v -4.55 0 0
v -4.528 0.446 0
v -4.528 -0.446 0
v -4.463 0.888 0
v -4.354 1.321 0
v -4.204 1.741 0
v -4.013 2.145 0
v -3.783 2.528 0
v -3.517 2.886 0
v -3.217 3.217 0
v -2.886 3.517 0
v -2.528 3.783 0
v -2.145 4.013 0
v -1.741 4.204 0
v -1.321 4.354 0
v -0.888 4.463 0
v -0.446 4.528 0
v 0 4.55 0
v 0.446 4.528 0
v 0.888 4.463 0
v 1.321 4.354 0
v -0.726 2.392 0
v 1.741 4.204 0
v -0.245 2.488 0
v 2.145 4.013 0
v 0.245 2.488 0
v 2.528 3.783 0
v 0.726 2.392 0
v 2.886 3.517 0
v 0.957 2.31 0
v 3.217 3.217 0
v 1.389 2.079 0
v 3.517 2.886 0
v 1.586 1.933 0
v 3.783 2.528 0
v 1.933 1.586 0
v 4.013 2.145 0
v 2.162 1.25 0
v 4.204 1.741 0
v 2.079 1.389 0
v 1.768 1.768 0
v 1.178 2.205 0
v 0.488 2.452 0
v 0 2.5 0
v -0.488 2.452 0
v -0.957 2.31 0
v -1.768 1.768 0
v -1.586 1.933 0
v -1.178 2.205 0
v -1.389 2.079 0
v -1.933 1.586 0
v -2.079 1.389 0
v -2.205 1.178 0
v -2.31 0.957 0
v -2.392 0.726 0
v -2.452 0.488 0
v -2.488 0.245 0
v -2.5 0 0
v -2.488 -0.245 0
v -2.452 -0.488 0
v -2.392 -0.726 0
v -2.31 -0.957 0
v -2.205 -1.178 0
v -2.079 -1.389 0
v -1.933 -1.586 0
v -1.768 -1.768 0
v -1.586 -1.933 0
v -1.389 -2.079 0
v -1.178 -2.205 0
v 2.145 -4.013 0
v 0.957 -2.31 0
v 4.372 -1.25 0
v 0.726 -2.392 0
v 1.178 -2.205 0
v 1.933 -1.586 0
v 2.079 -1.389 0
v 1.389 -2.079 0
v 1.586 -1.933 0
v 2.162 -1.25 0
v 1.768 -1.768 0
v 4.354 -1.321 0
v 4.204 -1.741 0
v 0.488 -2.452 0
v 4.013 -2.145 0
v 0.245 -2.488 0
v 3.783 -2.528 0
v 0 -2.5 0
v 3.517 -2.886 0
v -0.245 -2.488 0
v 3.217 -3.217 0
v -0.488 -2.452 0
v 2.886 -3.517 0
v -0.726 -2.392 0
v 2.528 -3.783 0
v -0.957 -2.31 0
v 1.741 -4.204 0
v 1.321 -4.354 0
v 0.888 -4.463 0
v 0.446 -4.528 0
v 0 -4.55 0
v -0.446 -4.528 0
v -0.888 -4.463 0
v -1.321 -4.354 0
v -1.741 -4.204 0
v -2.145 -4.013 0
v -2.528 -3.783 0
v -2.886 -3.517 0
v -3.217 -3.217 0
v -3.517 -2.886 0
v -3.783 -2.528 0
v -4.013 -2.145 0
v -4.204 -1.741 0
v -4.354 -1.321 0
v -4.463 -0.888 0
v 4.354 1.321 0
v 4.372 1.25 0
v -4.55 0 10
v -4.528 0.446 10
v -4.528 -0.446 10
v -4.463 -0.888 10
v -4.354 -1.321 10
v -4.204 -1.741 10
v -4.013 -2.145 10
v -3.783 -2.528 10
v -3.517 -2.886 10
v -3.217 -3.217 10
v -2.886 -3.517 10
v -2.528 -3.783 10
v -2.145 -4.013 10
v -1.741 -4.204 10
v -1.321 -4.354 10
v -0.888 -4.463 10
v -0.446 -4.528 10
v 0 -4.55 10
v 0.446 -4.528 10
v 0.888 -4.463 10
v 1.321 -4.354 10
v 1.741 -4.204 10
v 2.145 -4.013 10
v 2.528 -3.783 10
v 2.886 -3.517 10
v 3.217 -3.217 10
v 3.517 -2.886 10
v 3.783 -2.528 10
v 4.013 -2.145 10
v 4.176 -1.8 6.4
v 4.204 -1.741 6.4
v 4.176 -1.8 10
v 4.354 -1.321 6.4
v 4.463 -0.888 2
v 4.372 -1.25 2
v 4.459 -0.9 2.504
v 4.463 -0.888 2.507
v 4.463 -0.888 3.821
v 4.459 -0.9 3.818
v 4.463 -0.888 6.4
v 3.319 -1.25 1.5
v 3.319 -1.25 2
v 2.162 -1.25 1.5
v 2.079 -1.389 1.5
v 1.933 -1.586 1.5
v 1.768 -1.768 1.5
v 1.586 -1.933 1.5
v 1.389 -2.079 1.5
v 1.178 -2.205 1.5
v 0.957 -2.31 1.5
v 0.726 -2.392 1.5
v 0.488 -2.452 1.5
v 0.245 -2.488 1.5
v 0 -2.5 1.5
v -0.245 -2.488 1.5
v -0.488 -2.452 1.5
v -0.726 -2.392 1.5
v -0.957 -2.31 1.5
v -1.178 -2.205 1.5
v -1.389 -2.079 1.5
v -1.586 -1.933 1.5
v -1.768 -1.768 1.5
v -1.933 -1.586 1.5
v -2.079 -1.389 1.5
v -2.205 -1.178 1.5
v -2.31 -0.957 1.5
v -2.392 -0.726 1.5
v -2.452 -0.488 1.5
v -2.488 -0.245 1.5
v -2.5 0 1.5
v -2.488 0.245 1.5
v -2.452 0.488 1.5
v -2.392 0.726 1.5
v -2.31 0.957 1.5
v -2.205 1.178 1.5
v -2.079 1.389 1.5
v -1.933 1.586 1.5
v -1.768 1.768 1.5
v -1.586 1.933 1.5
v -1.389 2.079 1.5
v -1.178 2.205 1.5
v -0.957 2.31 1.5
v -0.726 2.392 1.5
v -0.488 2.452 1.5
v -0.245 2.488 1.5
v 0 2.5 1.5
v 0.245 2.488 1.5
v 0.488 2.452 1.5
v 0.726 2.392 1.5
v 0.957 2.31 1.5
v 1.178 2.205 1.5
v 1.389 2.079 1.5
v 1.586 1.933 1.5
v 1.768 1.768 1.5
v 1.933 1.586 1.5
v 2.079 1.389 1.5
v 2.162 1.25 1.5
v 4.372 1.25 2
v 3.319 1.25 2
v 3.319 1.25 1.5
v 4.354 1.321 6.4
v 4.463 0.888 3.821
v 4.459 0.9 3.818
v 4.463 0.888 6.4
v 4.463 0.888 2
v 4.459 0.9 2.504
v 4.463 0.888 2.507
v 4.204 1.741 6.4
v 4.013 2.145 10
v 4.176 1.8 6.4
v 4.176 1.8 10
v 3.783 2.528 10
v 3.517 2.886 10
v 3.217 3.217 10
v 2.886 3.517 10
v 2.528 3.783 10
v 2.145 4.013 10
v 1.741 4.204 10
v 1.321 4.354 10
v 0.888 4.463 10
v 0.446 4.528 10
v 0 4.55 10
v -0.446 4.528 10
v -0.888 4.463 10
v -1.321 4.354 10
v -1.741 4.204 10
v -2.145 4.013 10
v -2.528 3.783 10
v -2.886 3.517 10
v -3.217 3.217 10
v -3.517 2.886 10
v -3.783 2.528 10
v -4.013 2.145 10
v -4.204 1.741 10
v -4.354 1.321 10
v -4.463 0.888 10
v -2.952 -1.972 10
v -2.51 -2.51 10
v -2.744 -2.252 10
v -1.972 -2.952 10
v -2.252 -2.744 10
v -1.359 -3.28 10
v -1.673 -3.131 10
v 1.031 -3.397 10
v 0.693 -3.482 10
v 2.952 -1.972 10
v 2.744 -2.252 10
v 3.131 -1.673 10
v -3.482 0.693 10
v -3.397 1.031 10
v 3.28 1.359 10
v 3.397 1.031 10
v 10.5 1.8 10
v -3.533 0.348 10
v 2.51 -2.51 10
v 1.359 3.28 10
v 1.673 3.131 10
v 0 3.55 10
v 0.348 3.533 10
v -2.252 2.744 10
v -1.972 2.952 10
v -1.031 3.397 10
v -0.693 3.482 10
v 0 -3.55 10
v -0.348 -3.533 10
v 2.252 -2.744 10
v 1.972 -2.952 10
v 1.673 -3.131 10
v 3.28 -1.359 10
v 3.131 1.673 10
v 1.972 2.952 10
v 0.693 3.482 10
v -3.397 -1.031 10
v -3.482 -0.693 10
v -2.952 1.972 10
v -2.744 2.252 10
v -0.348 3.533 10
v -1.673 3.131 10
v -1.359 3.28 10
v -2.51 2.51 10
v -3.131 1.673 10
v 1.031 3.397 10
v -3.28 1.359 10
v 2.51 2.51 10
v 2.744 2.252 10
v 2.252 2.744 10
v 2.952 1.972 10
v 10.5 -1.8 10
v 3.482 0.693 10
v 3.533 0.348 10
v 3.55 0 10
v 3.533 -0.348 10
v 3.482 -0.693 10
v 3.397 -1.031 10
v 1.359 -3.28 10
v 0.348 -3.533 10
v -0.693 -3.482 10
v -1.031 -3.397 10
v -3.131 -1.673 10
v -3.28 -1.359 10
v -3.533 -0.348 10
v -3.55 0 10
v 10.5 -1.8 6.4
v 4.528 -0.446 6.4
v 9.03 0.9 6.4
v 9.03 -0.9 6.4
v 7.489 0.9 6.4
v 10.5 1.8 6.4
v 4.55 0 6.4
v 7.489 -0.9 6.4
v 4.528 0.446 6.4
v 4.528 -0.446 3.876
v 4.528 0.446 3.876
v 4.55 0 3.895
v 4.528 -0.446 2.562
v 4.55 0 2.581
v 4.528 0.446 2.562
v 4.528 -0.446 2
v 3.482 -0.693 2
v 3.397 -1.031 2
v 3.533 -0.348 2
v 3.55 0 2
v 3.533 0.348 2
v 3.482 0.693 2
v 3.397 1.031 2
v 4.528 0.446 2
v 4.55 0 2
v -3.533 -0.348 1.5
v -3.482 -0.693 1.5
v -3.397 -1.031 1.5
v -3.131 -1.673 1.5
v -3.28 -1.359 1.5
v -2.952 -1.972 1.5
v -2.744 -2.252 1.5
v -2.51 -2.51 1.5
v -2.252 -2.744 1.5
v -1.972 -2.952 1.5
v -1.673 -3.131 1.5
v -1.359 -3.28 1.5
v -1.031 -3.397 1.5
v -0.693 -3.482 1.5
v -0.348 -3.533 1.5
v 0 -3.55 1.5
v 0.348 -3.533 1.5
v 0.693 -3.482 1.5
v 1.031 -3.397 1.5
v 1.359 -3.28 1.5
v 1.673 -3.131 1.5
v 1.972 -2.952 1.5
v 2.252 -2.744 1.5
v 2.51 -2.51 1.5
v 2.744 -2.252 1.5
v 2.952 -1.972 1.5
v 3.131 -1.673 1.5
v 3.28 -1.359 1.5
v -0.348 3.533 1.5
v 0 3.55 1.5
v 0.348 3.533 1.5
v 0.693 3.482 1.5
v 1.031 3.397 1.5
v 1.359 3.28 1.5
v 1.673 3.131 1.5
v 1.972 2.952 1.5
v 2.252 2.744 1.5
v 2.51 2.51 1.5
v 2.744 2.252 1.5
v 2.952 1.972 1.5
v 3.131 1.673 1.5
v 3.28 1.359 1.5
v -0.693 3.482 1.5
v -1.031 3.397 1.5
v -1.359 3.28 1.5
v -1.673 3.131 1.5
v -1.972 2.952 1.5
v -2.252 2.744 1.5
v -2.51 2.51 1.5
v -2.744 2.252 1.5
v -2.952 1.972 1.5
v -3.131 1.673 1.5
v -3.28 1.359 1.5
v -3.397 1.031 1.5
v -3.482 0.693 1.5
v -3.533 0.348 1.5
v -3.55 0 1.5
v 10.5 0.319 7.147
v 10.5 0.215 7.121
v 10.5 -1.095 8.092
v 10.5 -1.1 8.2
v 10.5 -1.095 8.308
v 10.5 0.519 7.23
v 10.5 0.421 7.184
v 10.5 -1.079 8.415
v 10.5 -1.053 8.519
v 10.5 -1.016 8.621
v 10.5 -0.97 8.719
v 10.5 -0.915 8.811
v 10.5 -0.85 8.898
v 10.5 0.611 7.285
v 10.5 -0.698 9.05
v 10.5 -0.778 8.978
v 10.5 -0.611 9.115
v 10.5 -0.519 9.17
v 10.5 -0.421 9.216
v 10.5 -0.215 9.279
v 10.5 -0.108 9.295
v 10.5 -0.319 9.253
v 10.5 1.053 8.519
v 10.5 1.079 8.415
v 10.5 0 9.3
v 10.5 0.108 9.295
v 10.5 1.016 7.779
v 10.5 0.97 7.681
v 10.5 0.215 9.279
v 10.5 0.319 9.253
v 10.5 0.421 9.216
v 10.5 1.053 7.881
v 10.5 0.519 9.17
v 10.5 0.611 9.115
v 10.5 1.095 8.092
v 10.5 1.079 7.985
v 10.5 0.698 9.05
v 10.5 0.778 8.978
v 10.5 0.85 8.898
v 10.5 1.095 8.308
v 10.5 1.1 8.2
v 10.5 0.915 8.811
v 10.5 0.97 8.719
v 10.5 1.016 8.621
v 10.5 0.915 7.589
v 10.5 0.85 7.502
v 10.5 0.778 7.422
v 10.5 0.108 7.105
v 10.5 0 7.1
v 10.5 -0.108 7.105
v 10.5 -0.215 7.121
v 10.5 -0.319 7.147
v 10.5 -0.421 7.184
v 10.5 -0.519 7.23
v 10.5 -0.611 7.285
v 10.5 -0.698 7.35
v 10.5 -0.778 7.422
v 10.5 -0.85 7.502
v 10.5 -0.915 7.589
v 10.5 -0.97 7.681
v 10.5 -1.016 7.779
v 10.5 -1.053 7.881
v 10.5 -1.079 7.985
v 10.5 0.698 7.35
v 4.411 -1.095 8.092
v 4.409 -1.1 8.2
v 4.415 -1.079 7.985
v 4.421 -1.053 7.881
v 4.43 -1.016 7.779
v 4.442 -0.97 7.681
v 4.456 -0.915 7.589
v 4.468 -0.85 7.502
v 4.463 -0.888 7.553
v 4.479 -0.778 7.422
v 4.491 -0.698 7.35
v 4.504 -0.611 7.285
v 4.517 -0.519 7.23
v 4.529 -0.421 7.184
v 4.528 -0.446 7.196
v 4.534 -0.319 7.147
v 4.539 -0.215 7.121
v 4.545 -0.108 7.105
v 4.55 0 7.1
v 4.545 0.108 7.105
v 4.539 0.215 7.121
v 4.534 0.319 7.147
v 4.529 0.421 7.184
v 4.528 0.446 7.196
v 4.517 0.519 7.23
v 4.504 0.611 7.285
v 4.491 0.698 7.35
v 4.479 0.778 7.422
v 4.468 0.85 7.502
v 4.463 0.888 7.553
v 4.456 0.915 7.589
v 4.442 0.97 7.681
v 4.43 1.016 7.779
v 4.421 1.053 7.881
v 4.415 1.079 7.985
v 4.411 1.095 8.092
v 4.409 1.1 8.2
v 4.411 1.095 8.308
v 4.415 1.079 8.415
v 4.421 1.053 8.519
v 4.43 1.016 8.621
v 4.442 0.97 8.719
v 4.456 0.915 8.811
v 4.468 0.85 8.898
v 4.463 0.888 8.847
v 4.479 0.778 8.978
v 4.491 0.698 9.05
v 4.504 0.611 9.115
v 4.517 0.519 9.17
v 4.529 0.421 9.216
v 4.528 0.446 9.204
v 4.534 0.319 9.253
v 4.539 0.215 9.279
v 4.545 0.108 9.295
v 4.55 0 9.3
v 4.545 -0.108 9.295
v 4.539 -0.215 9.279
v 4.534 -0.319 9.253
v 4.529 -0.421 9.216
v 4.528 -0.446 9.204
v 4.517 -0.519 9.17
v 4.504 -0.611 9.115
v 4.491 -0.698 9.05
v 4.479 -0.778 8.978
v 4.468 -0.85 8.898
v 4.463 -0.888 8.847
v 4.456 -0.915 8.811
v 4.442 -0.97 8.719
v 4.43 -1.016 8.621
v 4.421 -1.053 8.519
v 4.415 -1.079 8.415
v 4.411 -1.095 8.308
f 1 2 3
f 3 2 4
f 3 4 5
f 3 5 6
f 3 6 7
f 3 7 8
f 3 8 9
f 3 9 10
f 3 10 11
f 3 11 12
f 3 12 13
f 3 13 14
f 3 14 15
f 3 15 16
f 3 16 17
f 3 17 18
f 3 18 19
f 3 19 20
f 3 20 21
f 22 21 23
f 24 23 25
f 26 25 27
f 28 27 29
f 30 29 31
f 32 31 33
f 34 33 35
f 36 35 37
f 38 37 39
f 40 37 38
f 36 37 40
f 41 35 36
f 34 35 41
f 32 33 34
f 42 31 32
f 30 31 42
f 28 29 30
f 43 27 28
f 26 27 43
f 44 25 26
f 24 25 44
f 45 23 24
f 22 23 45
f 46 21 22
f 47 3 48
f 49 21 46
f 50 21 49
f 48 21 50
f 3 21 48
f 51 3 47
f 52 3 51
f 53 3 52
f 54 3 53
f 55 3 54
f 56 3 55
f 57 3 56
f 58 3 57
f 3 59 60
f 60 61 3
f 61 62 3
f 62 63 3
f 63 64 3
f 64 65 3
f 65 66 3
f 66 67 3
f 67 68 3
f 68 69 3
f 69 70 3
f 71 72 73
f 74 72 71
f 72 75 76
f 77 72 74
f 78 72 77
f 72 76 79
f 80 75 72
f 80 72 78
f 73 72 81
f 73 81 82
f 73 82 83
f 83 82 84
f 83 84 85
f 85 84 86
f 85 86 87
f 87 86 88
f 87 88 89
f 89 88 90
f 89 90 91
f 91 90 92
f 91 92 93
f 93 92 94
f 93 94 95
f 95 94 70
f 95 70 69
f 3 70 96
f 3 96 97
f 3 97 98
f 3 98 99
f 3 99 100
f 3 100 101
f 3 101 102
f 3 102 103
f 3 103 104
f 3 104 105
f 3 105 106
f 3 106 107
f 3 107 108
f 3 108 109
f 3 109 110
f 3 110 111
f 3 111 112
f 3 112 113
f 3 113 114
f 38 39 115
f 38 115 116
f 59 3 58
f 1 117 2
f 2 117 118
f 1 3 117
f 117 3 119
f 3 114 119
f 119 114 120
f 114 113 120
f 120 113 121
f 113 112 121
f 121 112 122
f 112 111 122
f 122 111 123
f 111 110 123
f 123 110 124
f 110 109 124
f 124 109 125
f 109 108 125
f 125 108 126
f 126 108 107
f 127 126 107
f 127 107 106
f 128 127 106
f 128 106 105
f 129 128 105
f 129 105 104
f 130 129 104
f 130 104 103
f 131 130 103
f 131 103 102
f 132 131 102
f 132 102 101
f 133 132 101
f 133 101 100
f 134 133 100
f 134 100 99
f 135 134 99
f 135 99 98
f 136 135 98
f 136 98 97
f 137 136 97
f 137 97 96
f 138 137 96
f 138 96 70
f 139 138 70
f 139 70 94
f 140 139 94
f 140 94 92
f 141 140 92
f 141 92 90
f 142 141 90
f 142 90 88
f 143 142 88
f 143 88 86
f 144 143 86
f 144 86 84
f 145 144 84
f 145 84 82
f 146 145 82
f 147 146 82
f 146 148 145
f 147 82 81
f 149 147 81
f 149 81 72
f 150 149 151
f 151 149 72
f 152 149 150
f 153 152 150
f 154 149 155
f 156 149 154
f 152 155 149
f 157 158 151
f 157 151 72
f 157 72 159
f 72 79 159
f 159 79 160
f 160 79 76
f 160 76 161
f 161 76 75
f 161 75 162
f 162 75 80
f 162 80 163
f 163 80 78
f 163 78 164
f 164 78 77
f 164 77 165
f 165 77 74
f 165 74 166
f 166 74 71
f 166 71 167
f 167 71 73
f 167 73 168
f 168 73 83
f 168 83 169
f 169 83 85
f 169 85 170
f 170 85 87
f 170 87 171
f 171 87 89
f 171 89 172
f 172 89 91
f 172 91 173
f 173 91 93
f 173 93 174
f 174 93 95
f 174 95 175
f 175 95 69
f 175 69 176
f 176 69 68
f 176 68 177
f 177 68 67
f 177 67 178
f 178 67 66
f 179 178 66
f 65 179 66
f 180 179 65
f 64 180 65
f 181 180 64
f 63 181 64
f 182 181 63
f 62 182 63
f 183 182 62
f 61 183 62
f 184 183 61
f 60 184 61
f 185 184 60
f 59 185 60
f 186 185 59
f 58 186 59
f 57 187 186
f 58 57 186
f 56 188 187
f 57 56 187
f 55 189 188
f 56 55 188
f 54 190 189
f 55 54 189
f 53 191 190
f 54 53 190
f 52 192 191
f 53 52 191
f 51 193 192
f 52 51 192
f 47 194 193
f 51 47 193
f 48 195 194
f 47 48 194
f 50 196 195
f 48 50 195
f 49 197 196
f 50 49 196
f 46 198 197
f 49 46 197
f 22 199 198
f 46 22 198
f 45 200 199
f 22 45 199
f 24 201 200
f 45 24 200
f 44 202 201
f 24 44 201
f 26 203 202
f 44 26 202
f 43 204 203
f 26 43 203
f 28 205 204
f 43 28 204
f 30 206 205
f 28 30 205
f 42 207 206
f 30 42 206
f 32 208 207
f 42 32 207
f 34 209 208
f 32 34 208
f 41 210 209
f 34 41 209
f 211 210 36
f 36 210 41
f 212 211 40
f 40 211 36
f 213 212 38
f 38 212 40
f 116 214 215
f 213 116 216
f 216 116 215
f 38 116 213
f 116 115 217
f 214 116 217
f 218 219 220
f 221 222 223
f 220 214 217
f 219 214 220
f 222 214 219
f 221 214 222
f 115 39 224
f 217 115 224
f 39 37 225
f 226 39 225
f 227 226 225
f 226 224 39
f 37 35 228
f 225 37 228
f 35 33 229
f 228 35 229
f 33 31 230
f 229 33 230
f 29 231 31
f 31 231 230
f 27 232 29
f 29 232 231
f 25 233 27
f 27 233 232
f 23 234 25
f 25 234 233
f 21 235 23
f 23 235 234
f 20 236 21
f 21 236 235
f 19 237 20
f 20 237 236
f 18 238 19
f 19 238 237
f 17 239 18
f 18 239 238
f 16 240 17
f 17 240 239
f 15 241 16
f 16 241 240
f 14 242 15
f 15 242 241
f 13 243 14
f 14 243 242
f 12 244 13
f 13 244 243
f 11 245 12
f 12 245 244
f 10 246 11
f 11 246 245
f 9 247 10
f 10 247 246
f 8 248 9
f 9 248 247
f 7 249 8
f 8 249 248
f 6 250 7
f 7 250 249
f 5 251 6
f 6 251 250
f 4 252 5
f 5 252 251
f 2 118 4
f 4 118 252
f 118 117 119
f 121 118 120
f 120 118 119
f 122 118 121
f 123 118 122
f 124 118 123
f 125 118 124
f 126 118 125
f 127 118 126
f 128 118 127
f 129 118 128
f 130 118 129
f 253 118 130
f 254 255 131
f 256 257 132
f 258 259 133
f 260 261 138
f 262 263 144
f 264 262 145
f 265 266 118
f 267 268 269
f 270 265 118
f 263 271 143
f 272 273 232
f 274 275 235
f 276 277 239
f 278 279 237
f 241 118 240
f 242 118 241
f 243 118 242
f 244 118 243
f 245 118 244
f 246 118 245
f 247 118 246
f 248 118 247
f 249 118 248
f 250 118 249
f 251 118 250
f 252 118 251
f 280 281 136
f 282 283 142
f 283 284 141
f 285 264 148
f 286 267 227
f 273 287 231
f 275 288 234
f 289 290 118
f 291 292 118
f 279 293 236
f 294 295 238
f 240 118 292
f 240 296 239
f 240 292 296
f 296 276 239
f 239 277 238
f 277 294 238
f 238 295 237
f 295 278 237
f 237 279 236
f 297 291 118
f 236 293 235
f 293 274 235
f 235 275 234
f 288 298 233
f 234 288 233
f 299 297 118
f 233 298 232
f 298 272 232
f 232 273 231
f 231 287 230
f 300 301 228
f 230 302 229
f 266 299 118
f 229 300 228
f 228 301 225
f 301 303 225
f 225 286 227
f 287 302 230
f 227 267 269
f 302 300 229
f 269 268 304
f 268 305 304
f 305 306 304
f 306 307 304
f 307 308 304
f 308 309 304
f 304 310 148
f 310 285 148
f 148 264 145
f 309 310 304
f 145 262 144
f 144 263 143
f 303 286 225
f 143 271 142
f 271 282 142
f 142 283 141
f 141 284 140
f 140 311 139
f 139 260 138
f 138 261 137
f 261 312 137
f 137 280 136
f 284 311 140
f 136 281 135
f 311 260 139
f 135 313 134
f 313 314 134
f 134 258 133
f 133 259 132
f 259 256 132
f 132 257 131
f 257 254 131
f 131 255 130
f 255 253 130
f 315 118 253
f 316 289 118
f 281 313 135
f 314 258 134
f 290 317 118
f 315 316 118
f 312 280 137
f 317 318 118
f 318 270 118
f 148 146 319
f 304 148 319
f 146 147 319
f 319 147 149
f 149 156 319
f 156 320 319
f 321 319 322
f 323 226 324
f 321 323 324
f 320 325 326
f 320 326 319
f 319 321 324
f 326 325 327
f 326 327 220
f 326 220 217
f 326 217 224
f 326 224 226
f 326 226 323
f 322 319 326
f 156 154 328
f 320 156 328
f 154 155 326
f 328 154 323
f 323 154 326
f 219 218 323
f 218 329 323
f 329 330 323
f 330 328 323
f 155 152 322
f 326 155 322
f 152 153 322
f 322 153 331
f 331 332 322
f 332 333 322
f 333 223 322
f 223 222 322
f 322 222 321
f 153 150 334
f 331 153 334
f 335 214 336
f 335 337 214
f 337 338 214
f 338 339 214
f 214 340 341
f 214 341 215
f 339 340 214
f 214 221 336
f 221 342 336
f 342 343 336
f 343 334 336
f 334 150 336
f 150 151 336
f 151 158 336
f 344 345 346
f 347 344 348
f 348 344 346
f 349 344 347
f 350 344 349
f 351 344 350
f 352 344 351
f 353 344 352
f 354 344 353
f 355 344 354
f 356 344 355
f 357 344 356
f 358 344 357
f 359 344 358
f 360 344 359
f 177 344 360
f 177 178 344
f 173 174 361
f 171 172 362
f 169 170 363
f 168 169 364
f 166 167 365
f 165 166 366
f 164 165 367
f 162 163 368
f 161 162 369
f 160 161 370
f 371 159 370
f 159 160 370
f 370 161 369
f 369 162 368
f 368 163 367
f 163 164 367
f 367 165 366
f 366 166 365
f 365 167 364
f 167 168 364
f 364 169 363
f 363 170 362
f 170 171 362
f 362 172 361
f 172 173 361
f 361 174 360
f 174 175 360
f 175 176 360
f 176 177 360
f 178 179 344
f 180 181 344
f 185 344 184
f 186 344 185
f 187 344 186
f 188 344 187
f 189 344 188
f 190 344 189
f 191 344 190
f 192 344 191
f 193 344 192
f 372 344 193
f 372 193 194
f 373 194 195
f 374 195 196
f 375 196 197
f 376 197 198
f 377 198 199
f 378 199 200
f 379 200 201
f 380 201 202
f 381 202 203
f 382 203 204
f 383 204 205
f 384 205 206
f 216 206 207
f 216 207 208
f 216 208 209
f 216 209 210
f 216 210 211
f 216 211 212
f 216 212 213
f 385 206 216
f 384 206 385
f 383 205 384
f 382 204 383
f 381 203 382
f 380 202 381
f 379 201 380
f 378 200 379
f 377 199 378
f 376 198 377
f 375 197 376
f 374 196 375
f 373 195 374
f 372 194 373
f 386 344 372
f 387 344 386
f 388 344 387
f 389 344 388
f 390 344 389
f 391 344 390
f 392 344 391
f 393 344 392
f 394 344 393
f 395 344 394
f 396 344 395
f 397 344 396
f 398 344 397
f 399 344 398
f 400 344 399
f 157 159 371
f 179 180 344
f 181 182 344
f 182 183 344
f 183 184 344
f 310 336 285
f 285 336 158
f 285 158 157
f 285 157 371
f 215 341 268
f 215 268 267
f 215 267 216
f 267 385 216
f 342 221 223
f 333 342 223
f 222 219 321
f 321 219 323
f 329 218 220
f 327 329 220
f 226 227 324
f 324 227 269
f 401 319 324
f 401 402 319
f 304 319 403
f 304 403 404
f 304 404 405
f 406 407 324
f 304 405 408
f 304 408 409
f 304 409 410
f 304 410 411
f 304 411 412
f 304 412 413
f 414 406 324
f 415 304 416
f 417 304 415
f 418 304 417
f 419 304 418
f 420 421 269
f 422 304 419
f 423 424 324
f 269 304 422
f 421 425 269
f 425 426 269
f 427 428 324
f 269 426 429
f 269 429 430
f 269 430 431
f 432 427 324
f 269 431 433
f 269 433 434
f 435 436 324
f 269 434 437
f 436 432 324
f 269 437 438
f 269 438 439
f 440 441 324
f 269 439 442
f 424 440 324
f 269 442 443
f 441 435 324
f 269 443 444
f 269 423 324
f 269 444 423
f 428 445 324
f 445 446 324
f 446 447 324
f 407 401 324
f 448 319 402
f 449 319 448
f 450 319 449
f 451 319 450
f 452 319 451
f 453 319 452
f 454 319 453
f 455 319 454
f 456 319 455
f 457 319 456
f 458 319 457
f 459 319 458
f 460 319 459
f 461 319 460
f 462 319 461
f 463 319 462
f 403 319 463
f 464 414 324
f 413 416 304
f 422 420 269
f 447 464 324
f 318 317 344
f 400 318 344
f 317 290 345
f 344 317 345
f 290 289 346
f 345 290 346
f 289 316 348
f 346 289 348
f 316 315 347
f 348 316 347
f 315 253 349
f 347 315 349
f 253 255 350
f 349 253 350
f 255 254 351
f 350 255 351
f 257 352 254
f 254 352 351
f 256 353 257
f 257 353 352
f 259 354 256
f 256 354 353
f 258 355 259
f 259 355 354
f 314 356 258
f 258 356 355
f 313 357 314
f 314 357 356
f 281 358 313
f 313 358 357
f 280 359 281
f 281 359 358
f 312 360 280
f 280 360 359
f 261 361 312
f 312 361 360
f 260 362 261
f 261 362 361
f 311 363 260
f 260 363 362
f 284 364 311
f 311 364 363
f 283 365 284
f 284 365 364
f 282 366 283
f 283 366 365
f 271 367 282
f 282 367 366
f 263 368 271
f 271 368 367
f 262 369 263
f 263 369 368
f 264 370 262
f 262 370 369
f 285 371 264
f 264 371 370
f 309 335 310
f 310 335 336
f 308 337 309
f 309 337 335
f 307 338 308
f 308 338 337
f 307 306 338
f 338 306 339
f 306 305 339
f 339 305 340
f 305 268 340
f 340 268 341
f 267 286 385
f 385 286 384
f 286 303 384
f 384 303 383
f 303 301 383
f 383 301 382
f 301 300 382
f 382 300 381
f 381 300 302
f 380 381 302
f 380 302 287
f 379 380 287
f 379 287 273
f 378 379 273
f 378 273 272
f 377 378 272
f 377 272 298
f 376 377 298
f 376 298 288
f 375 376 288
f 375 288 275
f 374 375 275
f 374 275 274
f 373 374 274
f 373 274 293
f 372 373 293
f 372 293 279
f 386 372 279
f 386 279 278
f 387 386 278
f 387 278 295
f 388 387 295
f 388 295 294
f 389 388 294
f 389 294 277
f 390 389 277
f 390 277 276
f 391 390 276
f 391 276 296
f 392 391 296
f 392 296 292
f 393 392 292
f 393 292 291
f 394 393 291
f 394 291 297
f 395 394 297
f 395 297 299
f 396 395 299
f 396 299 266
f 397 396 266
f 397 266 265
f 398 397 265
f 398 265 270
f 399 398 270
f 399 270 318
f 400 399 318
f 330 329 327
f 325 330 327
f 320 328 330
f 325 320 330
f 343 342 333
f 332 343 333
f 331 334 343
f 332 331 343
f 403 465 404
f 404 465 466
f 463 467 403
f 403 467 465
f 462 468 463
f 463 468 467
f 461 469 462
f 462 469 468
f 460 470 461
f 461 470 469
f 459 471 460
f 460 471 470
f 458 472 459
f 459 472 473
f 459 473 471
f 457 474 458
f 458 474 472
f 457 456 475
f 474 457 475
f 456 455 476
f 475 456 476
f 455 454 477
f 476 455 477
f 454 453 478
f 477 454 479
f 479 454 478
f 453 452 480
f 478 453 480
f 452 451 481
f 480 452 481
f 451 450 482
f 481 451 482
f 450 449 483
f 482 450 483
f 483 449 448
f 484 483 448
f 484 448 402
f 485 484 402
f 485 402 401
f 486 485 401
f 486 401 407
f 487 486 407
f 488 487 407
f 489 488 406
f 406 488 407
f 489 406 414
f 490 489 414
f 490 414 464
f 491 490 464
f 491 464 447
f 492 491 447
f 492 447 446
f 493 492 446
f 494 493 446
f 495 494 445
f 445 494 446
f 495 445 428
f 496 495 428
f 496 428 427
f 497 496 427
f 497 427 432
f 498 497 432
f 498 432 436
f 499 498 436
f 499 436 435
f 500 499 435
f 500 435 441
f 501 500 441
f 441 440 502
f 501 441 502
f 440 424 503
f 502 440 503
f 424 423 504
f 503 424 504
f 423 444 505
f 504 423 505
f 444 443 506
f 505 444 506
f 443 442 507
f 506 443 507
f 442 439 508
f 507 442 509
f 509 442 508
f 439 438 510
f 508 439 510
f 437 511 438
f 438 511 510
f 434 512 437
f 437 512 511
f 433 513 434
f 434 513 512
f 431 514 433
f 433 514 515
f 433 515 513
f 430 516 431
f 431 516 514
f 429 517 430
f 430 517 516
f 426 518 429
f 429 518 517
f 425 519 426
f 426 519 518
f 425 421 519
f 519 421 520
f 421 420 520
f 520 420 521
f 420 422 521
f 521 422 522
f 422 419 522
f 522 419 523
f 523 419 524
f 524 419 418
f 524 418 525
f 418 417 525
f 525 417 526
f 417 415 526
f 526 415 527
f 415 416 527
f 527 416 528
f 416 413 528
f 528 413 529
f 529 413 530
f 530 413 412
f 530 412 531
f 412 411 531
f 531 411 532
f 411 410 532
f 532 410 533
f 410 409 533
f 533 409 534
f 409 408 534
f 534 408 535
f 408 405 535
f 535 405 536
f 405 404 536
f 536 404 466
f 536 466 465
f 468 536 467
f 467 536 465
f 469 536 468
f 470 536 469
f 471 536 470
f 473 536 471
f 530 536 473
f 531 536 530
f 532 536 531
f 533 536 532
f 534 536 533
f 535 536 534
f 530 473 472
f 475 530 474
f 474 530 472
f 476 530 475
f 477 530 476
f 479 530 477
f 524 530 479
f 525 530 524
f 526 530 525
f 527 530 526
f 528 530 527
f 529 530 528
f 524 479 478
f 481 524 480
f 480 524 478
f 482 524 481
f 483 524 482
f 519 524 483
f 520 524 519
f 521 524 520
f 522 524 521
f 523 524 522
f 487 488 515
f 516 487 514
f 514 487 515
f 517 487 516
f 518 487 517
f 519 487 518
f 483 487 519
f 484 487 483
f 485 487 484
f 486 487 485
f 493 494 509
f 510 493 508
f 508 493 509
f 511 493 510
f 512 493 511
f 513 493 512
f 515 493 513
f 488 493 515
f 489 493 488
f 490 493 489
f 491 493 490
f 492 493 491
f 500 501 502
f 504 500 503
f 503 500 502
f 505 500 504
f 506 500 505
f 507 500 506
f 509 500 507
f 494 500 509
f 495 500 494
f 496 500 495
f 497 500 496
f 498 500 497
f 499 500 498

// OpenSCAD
motor_diameter = 7;
wall_width = 2;
height = 10;
floor_width = 1.5;

tube_diameter = 2.2;
tube_length = 7;
tube_width = 3.6;
tube_height = height - tube_width;

support_height = 3;
support_width = tube_width /2;
support_a = height - tube_width - support_height;
support_b = tube_length*0.8;
support_length = sqrt(pow(support_a,2) + pow(support_b,2));
support_arc = 90 - asin((support_a) / (support_length * 0.8));

cable_hole_width= 2.5;

$fn = 64;




difference(){
union(){
	cylinder(h=height, r = (motor_diameter + 0.1 + wall_width) /2);



translate([motor_diameter/2,-tube_width/2,tube_height]){
	difference(){
		union(){
			cube([tube_length, tube_width, tube_width]);
			translate([0,support_width/2,-tube_height + support_height]) rotate(a=support_arc, v=[0,1,0]) cube([1,support_width,support_length*1.2]);
			
		}

		translate([0,tube_width/2,tube_width/2]) rotate(a=90, v=[0,1,0]) cylinder(h= 20, r= tube_diameter /2);

	}
}






}

	translate([0,0,floor_width]) cylinder(h=height +2, r = (motor_diameter + 0.1) /2);
	translate([0,0,-1])cylinder(h=10, r=2.5);
//hole for cables
translate([0,-cable_hole_width/2,2]) rotate(a=90, v=[0,1,0]) cube([3,cable_hole_width,5]);
}
